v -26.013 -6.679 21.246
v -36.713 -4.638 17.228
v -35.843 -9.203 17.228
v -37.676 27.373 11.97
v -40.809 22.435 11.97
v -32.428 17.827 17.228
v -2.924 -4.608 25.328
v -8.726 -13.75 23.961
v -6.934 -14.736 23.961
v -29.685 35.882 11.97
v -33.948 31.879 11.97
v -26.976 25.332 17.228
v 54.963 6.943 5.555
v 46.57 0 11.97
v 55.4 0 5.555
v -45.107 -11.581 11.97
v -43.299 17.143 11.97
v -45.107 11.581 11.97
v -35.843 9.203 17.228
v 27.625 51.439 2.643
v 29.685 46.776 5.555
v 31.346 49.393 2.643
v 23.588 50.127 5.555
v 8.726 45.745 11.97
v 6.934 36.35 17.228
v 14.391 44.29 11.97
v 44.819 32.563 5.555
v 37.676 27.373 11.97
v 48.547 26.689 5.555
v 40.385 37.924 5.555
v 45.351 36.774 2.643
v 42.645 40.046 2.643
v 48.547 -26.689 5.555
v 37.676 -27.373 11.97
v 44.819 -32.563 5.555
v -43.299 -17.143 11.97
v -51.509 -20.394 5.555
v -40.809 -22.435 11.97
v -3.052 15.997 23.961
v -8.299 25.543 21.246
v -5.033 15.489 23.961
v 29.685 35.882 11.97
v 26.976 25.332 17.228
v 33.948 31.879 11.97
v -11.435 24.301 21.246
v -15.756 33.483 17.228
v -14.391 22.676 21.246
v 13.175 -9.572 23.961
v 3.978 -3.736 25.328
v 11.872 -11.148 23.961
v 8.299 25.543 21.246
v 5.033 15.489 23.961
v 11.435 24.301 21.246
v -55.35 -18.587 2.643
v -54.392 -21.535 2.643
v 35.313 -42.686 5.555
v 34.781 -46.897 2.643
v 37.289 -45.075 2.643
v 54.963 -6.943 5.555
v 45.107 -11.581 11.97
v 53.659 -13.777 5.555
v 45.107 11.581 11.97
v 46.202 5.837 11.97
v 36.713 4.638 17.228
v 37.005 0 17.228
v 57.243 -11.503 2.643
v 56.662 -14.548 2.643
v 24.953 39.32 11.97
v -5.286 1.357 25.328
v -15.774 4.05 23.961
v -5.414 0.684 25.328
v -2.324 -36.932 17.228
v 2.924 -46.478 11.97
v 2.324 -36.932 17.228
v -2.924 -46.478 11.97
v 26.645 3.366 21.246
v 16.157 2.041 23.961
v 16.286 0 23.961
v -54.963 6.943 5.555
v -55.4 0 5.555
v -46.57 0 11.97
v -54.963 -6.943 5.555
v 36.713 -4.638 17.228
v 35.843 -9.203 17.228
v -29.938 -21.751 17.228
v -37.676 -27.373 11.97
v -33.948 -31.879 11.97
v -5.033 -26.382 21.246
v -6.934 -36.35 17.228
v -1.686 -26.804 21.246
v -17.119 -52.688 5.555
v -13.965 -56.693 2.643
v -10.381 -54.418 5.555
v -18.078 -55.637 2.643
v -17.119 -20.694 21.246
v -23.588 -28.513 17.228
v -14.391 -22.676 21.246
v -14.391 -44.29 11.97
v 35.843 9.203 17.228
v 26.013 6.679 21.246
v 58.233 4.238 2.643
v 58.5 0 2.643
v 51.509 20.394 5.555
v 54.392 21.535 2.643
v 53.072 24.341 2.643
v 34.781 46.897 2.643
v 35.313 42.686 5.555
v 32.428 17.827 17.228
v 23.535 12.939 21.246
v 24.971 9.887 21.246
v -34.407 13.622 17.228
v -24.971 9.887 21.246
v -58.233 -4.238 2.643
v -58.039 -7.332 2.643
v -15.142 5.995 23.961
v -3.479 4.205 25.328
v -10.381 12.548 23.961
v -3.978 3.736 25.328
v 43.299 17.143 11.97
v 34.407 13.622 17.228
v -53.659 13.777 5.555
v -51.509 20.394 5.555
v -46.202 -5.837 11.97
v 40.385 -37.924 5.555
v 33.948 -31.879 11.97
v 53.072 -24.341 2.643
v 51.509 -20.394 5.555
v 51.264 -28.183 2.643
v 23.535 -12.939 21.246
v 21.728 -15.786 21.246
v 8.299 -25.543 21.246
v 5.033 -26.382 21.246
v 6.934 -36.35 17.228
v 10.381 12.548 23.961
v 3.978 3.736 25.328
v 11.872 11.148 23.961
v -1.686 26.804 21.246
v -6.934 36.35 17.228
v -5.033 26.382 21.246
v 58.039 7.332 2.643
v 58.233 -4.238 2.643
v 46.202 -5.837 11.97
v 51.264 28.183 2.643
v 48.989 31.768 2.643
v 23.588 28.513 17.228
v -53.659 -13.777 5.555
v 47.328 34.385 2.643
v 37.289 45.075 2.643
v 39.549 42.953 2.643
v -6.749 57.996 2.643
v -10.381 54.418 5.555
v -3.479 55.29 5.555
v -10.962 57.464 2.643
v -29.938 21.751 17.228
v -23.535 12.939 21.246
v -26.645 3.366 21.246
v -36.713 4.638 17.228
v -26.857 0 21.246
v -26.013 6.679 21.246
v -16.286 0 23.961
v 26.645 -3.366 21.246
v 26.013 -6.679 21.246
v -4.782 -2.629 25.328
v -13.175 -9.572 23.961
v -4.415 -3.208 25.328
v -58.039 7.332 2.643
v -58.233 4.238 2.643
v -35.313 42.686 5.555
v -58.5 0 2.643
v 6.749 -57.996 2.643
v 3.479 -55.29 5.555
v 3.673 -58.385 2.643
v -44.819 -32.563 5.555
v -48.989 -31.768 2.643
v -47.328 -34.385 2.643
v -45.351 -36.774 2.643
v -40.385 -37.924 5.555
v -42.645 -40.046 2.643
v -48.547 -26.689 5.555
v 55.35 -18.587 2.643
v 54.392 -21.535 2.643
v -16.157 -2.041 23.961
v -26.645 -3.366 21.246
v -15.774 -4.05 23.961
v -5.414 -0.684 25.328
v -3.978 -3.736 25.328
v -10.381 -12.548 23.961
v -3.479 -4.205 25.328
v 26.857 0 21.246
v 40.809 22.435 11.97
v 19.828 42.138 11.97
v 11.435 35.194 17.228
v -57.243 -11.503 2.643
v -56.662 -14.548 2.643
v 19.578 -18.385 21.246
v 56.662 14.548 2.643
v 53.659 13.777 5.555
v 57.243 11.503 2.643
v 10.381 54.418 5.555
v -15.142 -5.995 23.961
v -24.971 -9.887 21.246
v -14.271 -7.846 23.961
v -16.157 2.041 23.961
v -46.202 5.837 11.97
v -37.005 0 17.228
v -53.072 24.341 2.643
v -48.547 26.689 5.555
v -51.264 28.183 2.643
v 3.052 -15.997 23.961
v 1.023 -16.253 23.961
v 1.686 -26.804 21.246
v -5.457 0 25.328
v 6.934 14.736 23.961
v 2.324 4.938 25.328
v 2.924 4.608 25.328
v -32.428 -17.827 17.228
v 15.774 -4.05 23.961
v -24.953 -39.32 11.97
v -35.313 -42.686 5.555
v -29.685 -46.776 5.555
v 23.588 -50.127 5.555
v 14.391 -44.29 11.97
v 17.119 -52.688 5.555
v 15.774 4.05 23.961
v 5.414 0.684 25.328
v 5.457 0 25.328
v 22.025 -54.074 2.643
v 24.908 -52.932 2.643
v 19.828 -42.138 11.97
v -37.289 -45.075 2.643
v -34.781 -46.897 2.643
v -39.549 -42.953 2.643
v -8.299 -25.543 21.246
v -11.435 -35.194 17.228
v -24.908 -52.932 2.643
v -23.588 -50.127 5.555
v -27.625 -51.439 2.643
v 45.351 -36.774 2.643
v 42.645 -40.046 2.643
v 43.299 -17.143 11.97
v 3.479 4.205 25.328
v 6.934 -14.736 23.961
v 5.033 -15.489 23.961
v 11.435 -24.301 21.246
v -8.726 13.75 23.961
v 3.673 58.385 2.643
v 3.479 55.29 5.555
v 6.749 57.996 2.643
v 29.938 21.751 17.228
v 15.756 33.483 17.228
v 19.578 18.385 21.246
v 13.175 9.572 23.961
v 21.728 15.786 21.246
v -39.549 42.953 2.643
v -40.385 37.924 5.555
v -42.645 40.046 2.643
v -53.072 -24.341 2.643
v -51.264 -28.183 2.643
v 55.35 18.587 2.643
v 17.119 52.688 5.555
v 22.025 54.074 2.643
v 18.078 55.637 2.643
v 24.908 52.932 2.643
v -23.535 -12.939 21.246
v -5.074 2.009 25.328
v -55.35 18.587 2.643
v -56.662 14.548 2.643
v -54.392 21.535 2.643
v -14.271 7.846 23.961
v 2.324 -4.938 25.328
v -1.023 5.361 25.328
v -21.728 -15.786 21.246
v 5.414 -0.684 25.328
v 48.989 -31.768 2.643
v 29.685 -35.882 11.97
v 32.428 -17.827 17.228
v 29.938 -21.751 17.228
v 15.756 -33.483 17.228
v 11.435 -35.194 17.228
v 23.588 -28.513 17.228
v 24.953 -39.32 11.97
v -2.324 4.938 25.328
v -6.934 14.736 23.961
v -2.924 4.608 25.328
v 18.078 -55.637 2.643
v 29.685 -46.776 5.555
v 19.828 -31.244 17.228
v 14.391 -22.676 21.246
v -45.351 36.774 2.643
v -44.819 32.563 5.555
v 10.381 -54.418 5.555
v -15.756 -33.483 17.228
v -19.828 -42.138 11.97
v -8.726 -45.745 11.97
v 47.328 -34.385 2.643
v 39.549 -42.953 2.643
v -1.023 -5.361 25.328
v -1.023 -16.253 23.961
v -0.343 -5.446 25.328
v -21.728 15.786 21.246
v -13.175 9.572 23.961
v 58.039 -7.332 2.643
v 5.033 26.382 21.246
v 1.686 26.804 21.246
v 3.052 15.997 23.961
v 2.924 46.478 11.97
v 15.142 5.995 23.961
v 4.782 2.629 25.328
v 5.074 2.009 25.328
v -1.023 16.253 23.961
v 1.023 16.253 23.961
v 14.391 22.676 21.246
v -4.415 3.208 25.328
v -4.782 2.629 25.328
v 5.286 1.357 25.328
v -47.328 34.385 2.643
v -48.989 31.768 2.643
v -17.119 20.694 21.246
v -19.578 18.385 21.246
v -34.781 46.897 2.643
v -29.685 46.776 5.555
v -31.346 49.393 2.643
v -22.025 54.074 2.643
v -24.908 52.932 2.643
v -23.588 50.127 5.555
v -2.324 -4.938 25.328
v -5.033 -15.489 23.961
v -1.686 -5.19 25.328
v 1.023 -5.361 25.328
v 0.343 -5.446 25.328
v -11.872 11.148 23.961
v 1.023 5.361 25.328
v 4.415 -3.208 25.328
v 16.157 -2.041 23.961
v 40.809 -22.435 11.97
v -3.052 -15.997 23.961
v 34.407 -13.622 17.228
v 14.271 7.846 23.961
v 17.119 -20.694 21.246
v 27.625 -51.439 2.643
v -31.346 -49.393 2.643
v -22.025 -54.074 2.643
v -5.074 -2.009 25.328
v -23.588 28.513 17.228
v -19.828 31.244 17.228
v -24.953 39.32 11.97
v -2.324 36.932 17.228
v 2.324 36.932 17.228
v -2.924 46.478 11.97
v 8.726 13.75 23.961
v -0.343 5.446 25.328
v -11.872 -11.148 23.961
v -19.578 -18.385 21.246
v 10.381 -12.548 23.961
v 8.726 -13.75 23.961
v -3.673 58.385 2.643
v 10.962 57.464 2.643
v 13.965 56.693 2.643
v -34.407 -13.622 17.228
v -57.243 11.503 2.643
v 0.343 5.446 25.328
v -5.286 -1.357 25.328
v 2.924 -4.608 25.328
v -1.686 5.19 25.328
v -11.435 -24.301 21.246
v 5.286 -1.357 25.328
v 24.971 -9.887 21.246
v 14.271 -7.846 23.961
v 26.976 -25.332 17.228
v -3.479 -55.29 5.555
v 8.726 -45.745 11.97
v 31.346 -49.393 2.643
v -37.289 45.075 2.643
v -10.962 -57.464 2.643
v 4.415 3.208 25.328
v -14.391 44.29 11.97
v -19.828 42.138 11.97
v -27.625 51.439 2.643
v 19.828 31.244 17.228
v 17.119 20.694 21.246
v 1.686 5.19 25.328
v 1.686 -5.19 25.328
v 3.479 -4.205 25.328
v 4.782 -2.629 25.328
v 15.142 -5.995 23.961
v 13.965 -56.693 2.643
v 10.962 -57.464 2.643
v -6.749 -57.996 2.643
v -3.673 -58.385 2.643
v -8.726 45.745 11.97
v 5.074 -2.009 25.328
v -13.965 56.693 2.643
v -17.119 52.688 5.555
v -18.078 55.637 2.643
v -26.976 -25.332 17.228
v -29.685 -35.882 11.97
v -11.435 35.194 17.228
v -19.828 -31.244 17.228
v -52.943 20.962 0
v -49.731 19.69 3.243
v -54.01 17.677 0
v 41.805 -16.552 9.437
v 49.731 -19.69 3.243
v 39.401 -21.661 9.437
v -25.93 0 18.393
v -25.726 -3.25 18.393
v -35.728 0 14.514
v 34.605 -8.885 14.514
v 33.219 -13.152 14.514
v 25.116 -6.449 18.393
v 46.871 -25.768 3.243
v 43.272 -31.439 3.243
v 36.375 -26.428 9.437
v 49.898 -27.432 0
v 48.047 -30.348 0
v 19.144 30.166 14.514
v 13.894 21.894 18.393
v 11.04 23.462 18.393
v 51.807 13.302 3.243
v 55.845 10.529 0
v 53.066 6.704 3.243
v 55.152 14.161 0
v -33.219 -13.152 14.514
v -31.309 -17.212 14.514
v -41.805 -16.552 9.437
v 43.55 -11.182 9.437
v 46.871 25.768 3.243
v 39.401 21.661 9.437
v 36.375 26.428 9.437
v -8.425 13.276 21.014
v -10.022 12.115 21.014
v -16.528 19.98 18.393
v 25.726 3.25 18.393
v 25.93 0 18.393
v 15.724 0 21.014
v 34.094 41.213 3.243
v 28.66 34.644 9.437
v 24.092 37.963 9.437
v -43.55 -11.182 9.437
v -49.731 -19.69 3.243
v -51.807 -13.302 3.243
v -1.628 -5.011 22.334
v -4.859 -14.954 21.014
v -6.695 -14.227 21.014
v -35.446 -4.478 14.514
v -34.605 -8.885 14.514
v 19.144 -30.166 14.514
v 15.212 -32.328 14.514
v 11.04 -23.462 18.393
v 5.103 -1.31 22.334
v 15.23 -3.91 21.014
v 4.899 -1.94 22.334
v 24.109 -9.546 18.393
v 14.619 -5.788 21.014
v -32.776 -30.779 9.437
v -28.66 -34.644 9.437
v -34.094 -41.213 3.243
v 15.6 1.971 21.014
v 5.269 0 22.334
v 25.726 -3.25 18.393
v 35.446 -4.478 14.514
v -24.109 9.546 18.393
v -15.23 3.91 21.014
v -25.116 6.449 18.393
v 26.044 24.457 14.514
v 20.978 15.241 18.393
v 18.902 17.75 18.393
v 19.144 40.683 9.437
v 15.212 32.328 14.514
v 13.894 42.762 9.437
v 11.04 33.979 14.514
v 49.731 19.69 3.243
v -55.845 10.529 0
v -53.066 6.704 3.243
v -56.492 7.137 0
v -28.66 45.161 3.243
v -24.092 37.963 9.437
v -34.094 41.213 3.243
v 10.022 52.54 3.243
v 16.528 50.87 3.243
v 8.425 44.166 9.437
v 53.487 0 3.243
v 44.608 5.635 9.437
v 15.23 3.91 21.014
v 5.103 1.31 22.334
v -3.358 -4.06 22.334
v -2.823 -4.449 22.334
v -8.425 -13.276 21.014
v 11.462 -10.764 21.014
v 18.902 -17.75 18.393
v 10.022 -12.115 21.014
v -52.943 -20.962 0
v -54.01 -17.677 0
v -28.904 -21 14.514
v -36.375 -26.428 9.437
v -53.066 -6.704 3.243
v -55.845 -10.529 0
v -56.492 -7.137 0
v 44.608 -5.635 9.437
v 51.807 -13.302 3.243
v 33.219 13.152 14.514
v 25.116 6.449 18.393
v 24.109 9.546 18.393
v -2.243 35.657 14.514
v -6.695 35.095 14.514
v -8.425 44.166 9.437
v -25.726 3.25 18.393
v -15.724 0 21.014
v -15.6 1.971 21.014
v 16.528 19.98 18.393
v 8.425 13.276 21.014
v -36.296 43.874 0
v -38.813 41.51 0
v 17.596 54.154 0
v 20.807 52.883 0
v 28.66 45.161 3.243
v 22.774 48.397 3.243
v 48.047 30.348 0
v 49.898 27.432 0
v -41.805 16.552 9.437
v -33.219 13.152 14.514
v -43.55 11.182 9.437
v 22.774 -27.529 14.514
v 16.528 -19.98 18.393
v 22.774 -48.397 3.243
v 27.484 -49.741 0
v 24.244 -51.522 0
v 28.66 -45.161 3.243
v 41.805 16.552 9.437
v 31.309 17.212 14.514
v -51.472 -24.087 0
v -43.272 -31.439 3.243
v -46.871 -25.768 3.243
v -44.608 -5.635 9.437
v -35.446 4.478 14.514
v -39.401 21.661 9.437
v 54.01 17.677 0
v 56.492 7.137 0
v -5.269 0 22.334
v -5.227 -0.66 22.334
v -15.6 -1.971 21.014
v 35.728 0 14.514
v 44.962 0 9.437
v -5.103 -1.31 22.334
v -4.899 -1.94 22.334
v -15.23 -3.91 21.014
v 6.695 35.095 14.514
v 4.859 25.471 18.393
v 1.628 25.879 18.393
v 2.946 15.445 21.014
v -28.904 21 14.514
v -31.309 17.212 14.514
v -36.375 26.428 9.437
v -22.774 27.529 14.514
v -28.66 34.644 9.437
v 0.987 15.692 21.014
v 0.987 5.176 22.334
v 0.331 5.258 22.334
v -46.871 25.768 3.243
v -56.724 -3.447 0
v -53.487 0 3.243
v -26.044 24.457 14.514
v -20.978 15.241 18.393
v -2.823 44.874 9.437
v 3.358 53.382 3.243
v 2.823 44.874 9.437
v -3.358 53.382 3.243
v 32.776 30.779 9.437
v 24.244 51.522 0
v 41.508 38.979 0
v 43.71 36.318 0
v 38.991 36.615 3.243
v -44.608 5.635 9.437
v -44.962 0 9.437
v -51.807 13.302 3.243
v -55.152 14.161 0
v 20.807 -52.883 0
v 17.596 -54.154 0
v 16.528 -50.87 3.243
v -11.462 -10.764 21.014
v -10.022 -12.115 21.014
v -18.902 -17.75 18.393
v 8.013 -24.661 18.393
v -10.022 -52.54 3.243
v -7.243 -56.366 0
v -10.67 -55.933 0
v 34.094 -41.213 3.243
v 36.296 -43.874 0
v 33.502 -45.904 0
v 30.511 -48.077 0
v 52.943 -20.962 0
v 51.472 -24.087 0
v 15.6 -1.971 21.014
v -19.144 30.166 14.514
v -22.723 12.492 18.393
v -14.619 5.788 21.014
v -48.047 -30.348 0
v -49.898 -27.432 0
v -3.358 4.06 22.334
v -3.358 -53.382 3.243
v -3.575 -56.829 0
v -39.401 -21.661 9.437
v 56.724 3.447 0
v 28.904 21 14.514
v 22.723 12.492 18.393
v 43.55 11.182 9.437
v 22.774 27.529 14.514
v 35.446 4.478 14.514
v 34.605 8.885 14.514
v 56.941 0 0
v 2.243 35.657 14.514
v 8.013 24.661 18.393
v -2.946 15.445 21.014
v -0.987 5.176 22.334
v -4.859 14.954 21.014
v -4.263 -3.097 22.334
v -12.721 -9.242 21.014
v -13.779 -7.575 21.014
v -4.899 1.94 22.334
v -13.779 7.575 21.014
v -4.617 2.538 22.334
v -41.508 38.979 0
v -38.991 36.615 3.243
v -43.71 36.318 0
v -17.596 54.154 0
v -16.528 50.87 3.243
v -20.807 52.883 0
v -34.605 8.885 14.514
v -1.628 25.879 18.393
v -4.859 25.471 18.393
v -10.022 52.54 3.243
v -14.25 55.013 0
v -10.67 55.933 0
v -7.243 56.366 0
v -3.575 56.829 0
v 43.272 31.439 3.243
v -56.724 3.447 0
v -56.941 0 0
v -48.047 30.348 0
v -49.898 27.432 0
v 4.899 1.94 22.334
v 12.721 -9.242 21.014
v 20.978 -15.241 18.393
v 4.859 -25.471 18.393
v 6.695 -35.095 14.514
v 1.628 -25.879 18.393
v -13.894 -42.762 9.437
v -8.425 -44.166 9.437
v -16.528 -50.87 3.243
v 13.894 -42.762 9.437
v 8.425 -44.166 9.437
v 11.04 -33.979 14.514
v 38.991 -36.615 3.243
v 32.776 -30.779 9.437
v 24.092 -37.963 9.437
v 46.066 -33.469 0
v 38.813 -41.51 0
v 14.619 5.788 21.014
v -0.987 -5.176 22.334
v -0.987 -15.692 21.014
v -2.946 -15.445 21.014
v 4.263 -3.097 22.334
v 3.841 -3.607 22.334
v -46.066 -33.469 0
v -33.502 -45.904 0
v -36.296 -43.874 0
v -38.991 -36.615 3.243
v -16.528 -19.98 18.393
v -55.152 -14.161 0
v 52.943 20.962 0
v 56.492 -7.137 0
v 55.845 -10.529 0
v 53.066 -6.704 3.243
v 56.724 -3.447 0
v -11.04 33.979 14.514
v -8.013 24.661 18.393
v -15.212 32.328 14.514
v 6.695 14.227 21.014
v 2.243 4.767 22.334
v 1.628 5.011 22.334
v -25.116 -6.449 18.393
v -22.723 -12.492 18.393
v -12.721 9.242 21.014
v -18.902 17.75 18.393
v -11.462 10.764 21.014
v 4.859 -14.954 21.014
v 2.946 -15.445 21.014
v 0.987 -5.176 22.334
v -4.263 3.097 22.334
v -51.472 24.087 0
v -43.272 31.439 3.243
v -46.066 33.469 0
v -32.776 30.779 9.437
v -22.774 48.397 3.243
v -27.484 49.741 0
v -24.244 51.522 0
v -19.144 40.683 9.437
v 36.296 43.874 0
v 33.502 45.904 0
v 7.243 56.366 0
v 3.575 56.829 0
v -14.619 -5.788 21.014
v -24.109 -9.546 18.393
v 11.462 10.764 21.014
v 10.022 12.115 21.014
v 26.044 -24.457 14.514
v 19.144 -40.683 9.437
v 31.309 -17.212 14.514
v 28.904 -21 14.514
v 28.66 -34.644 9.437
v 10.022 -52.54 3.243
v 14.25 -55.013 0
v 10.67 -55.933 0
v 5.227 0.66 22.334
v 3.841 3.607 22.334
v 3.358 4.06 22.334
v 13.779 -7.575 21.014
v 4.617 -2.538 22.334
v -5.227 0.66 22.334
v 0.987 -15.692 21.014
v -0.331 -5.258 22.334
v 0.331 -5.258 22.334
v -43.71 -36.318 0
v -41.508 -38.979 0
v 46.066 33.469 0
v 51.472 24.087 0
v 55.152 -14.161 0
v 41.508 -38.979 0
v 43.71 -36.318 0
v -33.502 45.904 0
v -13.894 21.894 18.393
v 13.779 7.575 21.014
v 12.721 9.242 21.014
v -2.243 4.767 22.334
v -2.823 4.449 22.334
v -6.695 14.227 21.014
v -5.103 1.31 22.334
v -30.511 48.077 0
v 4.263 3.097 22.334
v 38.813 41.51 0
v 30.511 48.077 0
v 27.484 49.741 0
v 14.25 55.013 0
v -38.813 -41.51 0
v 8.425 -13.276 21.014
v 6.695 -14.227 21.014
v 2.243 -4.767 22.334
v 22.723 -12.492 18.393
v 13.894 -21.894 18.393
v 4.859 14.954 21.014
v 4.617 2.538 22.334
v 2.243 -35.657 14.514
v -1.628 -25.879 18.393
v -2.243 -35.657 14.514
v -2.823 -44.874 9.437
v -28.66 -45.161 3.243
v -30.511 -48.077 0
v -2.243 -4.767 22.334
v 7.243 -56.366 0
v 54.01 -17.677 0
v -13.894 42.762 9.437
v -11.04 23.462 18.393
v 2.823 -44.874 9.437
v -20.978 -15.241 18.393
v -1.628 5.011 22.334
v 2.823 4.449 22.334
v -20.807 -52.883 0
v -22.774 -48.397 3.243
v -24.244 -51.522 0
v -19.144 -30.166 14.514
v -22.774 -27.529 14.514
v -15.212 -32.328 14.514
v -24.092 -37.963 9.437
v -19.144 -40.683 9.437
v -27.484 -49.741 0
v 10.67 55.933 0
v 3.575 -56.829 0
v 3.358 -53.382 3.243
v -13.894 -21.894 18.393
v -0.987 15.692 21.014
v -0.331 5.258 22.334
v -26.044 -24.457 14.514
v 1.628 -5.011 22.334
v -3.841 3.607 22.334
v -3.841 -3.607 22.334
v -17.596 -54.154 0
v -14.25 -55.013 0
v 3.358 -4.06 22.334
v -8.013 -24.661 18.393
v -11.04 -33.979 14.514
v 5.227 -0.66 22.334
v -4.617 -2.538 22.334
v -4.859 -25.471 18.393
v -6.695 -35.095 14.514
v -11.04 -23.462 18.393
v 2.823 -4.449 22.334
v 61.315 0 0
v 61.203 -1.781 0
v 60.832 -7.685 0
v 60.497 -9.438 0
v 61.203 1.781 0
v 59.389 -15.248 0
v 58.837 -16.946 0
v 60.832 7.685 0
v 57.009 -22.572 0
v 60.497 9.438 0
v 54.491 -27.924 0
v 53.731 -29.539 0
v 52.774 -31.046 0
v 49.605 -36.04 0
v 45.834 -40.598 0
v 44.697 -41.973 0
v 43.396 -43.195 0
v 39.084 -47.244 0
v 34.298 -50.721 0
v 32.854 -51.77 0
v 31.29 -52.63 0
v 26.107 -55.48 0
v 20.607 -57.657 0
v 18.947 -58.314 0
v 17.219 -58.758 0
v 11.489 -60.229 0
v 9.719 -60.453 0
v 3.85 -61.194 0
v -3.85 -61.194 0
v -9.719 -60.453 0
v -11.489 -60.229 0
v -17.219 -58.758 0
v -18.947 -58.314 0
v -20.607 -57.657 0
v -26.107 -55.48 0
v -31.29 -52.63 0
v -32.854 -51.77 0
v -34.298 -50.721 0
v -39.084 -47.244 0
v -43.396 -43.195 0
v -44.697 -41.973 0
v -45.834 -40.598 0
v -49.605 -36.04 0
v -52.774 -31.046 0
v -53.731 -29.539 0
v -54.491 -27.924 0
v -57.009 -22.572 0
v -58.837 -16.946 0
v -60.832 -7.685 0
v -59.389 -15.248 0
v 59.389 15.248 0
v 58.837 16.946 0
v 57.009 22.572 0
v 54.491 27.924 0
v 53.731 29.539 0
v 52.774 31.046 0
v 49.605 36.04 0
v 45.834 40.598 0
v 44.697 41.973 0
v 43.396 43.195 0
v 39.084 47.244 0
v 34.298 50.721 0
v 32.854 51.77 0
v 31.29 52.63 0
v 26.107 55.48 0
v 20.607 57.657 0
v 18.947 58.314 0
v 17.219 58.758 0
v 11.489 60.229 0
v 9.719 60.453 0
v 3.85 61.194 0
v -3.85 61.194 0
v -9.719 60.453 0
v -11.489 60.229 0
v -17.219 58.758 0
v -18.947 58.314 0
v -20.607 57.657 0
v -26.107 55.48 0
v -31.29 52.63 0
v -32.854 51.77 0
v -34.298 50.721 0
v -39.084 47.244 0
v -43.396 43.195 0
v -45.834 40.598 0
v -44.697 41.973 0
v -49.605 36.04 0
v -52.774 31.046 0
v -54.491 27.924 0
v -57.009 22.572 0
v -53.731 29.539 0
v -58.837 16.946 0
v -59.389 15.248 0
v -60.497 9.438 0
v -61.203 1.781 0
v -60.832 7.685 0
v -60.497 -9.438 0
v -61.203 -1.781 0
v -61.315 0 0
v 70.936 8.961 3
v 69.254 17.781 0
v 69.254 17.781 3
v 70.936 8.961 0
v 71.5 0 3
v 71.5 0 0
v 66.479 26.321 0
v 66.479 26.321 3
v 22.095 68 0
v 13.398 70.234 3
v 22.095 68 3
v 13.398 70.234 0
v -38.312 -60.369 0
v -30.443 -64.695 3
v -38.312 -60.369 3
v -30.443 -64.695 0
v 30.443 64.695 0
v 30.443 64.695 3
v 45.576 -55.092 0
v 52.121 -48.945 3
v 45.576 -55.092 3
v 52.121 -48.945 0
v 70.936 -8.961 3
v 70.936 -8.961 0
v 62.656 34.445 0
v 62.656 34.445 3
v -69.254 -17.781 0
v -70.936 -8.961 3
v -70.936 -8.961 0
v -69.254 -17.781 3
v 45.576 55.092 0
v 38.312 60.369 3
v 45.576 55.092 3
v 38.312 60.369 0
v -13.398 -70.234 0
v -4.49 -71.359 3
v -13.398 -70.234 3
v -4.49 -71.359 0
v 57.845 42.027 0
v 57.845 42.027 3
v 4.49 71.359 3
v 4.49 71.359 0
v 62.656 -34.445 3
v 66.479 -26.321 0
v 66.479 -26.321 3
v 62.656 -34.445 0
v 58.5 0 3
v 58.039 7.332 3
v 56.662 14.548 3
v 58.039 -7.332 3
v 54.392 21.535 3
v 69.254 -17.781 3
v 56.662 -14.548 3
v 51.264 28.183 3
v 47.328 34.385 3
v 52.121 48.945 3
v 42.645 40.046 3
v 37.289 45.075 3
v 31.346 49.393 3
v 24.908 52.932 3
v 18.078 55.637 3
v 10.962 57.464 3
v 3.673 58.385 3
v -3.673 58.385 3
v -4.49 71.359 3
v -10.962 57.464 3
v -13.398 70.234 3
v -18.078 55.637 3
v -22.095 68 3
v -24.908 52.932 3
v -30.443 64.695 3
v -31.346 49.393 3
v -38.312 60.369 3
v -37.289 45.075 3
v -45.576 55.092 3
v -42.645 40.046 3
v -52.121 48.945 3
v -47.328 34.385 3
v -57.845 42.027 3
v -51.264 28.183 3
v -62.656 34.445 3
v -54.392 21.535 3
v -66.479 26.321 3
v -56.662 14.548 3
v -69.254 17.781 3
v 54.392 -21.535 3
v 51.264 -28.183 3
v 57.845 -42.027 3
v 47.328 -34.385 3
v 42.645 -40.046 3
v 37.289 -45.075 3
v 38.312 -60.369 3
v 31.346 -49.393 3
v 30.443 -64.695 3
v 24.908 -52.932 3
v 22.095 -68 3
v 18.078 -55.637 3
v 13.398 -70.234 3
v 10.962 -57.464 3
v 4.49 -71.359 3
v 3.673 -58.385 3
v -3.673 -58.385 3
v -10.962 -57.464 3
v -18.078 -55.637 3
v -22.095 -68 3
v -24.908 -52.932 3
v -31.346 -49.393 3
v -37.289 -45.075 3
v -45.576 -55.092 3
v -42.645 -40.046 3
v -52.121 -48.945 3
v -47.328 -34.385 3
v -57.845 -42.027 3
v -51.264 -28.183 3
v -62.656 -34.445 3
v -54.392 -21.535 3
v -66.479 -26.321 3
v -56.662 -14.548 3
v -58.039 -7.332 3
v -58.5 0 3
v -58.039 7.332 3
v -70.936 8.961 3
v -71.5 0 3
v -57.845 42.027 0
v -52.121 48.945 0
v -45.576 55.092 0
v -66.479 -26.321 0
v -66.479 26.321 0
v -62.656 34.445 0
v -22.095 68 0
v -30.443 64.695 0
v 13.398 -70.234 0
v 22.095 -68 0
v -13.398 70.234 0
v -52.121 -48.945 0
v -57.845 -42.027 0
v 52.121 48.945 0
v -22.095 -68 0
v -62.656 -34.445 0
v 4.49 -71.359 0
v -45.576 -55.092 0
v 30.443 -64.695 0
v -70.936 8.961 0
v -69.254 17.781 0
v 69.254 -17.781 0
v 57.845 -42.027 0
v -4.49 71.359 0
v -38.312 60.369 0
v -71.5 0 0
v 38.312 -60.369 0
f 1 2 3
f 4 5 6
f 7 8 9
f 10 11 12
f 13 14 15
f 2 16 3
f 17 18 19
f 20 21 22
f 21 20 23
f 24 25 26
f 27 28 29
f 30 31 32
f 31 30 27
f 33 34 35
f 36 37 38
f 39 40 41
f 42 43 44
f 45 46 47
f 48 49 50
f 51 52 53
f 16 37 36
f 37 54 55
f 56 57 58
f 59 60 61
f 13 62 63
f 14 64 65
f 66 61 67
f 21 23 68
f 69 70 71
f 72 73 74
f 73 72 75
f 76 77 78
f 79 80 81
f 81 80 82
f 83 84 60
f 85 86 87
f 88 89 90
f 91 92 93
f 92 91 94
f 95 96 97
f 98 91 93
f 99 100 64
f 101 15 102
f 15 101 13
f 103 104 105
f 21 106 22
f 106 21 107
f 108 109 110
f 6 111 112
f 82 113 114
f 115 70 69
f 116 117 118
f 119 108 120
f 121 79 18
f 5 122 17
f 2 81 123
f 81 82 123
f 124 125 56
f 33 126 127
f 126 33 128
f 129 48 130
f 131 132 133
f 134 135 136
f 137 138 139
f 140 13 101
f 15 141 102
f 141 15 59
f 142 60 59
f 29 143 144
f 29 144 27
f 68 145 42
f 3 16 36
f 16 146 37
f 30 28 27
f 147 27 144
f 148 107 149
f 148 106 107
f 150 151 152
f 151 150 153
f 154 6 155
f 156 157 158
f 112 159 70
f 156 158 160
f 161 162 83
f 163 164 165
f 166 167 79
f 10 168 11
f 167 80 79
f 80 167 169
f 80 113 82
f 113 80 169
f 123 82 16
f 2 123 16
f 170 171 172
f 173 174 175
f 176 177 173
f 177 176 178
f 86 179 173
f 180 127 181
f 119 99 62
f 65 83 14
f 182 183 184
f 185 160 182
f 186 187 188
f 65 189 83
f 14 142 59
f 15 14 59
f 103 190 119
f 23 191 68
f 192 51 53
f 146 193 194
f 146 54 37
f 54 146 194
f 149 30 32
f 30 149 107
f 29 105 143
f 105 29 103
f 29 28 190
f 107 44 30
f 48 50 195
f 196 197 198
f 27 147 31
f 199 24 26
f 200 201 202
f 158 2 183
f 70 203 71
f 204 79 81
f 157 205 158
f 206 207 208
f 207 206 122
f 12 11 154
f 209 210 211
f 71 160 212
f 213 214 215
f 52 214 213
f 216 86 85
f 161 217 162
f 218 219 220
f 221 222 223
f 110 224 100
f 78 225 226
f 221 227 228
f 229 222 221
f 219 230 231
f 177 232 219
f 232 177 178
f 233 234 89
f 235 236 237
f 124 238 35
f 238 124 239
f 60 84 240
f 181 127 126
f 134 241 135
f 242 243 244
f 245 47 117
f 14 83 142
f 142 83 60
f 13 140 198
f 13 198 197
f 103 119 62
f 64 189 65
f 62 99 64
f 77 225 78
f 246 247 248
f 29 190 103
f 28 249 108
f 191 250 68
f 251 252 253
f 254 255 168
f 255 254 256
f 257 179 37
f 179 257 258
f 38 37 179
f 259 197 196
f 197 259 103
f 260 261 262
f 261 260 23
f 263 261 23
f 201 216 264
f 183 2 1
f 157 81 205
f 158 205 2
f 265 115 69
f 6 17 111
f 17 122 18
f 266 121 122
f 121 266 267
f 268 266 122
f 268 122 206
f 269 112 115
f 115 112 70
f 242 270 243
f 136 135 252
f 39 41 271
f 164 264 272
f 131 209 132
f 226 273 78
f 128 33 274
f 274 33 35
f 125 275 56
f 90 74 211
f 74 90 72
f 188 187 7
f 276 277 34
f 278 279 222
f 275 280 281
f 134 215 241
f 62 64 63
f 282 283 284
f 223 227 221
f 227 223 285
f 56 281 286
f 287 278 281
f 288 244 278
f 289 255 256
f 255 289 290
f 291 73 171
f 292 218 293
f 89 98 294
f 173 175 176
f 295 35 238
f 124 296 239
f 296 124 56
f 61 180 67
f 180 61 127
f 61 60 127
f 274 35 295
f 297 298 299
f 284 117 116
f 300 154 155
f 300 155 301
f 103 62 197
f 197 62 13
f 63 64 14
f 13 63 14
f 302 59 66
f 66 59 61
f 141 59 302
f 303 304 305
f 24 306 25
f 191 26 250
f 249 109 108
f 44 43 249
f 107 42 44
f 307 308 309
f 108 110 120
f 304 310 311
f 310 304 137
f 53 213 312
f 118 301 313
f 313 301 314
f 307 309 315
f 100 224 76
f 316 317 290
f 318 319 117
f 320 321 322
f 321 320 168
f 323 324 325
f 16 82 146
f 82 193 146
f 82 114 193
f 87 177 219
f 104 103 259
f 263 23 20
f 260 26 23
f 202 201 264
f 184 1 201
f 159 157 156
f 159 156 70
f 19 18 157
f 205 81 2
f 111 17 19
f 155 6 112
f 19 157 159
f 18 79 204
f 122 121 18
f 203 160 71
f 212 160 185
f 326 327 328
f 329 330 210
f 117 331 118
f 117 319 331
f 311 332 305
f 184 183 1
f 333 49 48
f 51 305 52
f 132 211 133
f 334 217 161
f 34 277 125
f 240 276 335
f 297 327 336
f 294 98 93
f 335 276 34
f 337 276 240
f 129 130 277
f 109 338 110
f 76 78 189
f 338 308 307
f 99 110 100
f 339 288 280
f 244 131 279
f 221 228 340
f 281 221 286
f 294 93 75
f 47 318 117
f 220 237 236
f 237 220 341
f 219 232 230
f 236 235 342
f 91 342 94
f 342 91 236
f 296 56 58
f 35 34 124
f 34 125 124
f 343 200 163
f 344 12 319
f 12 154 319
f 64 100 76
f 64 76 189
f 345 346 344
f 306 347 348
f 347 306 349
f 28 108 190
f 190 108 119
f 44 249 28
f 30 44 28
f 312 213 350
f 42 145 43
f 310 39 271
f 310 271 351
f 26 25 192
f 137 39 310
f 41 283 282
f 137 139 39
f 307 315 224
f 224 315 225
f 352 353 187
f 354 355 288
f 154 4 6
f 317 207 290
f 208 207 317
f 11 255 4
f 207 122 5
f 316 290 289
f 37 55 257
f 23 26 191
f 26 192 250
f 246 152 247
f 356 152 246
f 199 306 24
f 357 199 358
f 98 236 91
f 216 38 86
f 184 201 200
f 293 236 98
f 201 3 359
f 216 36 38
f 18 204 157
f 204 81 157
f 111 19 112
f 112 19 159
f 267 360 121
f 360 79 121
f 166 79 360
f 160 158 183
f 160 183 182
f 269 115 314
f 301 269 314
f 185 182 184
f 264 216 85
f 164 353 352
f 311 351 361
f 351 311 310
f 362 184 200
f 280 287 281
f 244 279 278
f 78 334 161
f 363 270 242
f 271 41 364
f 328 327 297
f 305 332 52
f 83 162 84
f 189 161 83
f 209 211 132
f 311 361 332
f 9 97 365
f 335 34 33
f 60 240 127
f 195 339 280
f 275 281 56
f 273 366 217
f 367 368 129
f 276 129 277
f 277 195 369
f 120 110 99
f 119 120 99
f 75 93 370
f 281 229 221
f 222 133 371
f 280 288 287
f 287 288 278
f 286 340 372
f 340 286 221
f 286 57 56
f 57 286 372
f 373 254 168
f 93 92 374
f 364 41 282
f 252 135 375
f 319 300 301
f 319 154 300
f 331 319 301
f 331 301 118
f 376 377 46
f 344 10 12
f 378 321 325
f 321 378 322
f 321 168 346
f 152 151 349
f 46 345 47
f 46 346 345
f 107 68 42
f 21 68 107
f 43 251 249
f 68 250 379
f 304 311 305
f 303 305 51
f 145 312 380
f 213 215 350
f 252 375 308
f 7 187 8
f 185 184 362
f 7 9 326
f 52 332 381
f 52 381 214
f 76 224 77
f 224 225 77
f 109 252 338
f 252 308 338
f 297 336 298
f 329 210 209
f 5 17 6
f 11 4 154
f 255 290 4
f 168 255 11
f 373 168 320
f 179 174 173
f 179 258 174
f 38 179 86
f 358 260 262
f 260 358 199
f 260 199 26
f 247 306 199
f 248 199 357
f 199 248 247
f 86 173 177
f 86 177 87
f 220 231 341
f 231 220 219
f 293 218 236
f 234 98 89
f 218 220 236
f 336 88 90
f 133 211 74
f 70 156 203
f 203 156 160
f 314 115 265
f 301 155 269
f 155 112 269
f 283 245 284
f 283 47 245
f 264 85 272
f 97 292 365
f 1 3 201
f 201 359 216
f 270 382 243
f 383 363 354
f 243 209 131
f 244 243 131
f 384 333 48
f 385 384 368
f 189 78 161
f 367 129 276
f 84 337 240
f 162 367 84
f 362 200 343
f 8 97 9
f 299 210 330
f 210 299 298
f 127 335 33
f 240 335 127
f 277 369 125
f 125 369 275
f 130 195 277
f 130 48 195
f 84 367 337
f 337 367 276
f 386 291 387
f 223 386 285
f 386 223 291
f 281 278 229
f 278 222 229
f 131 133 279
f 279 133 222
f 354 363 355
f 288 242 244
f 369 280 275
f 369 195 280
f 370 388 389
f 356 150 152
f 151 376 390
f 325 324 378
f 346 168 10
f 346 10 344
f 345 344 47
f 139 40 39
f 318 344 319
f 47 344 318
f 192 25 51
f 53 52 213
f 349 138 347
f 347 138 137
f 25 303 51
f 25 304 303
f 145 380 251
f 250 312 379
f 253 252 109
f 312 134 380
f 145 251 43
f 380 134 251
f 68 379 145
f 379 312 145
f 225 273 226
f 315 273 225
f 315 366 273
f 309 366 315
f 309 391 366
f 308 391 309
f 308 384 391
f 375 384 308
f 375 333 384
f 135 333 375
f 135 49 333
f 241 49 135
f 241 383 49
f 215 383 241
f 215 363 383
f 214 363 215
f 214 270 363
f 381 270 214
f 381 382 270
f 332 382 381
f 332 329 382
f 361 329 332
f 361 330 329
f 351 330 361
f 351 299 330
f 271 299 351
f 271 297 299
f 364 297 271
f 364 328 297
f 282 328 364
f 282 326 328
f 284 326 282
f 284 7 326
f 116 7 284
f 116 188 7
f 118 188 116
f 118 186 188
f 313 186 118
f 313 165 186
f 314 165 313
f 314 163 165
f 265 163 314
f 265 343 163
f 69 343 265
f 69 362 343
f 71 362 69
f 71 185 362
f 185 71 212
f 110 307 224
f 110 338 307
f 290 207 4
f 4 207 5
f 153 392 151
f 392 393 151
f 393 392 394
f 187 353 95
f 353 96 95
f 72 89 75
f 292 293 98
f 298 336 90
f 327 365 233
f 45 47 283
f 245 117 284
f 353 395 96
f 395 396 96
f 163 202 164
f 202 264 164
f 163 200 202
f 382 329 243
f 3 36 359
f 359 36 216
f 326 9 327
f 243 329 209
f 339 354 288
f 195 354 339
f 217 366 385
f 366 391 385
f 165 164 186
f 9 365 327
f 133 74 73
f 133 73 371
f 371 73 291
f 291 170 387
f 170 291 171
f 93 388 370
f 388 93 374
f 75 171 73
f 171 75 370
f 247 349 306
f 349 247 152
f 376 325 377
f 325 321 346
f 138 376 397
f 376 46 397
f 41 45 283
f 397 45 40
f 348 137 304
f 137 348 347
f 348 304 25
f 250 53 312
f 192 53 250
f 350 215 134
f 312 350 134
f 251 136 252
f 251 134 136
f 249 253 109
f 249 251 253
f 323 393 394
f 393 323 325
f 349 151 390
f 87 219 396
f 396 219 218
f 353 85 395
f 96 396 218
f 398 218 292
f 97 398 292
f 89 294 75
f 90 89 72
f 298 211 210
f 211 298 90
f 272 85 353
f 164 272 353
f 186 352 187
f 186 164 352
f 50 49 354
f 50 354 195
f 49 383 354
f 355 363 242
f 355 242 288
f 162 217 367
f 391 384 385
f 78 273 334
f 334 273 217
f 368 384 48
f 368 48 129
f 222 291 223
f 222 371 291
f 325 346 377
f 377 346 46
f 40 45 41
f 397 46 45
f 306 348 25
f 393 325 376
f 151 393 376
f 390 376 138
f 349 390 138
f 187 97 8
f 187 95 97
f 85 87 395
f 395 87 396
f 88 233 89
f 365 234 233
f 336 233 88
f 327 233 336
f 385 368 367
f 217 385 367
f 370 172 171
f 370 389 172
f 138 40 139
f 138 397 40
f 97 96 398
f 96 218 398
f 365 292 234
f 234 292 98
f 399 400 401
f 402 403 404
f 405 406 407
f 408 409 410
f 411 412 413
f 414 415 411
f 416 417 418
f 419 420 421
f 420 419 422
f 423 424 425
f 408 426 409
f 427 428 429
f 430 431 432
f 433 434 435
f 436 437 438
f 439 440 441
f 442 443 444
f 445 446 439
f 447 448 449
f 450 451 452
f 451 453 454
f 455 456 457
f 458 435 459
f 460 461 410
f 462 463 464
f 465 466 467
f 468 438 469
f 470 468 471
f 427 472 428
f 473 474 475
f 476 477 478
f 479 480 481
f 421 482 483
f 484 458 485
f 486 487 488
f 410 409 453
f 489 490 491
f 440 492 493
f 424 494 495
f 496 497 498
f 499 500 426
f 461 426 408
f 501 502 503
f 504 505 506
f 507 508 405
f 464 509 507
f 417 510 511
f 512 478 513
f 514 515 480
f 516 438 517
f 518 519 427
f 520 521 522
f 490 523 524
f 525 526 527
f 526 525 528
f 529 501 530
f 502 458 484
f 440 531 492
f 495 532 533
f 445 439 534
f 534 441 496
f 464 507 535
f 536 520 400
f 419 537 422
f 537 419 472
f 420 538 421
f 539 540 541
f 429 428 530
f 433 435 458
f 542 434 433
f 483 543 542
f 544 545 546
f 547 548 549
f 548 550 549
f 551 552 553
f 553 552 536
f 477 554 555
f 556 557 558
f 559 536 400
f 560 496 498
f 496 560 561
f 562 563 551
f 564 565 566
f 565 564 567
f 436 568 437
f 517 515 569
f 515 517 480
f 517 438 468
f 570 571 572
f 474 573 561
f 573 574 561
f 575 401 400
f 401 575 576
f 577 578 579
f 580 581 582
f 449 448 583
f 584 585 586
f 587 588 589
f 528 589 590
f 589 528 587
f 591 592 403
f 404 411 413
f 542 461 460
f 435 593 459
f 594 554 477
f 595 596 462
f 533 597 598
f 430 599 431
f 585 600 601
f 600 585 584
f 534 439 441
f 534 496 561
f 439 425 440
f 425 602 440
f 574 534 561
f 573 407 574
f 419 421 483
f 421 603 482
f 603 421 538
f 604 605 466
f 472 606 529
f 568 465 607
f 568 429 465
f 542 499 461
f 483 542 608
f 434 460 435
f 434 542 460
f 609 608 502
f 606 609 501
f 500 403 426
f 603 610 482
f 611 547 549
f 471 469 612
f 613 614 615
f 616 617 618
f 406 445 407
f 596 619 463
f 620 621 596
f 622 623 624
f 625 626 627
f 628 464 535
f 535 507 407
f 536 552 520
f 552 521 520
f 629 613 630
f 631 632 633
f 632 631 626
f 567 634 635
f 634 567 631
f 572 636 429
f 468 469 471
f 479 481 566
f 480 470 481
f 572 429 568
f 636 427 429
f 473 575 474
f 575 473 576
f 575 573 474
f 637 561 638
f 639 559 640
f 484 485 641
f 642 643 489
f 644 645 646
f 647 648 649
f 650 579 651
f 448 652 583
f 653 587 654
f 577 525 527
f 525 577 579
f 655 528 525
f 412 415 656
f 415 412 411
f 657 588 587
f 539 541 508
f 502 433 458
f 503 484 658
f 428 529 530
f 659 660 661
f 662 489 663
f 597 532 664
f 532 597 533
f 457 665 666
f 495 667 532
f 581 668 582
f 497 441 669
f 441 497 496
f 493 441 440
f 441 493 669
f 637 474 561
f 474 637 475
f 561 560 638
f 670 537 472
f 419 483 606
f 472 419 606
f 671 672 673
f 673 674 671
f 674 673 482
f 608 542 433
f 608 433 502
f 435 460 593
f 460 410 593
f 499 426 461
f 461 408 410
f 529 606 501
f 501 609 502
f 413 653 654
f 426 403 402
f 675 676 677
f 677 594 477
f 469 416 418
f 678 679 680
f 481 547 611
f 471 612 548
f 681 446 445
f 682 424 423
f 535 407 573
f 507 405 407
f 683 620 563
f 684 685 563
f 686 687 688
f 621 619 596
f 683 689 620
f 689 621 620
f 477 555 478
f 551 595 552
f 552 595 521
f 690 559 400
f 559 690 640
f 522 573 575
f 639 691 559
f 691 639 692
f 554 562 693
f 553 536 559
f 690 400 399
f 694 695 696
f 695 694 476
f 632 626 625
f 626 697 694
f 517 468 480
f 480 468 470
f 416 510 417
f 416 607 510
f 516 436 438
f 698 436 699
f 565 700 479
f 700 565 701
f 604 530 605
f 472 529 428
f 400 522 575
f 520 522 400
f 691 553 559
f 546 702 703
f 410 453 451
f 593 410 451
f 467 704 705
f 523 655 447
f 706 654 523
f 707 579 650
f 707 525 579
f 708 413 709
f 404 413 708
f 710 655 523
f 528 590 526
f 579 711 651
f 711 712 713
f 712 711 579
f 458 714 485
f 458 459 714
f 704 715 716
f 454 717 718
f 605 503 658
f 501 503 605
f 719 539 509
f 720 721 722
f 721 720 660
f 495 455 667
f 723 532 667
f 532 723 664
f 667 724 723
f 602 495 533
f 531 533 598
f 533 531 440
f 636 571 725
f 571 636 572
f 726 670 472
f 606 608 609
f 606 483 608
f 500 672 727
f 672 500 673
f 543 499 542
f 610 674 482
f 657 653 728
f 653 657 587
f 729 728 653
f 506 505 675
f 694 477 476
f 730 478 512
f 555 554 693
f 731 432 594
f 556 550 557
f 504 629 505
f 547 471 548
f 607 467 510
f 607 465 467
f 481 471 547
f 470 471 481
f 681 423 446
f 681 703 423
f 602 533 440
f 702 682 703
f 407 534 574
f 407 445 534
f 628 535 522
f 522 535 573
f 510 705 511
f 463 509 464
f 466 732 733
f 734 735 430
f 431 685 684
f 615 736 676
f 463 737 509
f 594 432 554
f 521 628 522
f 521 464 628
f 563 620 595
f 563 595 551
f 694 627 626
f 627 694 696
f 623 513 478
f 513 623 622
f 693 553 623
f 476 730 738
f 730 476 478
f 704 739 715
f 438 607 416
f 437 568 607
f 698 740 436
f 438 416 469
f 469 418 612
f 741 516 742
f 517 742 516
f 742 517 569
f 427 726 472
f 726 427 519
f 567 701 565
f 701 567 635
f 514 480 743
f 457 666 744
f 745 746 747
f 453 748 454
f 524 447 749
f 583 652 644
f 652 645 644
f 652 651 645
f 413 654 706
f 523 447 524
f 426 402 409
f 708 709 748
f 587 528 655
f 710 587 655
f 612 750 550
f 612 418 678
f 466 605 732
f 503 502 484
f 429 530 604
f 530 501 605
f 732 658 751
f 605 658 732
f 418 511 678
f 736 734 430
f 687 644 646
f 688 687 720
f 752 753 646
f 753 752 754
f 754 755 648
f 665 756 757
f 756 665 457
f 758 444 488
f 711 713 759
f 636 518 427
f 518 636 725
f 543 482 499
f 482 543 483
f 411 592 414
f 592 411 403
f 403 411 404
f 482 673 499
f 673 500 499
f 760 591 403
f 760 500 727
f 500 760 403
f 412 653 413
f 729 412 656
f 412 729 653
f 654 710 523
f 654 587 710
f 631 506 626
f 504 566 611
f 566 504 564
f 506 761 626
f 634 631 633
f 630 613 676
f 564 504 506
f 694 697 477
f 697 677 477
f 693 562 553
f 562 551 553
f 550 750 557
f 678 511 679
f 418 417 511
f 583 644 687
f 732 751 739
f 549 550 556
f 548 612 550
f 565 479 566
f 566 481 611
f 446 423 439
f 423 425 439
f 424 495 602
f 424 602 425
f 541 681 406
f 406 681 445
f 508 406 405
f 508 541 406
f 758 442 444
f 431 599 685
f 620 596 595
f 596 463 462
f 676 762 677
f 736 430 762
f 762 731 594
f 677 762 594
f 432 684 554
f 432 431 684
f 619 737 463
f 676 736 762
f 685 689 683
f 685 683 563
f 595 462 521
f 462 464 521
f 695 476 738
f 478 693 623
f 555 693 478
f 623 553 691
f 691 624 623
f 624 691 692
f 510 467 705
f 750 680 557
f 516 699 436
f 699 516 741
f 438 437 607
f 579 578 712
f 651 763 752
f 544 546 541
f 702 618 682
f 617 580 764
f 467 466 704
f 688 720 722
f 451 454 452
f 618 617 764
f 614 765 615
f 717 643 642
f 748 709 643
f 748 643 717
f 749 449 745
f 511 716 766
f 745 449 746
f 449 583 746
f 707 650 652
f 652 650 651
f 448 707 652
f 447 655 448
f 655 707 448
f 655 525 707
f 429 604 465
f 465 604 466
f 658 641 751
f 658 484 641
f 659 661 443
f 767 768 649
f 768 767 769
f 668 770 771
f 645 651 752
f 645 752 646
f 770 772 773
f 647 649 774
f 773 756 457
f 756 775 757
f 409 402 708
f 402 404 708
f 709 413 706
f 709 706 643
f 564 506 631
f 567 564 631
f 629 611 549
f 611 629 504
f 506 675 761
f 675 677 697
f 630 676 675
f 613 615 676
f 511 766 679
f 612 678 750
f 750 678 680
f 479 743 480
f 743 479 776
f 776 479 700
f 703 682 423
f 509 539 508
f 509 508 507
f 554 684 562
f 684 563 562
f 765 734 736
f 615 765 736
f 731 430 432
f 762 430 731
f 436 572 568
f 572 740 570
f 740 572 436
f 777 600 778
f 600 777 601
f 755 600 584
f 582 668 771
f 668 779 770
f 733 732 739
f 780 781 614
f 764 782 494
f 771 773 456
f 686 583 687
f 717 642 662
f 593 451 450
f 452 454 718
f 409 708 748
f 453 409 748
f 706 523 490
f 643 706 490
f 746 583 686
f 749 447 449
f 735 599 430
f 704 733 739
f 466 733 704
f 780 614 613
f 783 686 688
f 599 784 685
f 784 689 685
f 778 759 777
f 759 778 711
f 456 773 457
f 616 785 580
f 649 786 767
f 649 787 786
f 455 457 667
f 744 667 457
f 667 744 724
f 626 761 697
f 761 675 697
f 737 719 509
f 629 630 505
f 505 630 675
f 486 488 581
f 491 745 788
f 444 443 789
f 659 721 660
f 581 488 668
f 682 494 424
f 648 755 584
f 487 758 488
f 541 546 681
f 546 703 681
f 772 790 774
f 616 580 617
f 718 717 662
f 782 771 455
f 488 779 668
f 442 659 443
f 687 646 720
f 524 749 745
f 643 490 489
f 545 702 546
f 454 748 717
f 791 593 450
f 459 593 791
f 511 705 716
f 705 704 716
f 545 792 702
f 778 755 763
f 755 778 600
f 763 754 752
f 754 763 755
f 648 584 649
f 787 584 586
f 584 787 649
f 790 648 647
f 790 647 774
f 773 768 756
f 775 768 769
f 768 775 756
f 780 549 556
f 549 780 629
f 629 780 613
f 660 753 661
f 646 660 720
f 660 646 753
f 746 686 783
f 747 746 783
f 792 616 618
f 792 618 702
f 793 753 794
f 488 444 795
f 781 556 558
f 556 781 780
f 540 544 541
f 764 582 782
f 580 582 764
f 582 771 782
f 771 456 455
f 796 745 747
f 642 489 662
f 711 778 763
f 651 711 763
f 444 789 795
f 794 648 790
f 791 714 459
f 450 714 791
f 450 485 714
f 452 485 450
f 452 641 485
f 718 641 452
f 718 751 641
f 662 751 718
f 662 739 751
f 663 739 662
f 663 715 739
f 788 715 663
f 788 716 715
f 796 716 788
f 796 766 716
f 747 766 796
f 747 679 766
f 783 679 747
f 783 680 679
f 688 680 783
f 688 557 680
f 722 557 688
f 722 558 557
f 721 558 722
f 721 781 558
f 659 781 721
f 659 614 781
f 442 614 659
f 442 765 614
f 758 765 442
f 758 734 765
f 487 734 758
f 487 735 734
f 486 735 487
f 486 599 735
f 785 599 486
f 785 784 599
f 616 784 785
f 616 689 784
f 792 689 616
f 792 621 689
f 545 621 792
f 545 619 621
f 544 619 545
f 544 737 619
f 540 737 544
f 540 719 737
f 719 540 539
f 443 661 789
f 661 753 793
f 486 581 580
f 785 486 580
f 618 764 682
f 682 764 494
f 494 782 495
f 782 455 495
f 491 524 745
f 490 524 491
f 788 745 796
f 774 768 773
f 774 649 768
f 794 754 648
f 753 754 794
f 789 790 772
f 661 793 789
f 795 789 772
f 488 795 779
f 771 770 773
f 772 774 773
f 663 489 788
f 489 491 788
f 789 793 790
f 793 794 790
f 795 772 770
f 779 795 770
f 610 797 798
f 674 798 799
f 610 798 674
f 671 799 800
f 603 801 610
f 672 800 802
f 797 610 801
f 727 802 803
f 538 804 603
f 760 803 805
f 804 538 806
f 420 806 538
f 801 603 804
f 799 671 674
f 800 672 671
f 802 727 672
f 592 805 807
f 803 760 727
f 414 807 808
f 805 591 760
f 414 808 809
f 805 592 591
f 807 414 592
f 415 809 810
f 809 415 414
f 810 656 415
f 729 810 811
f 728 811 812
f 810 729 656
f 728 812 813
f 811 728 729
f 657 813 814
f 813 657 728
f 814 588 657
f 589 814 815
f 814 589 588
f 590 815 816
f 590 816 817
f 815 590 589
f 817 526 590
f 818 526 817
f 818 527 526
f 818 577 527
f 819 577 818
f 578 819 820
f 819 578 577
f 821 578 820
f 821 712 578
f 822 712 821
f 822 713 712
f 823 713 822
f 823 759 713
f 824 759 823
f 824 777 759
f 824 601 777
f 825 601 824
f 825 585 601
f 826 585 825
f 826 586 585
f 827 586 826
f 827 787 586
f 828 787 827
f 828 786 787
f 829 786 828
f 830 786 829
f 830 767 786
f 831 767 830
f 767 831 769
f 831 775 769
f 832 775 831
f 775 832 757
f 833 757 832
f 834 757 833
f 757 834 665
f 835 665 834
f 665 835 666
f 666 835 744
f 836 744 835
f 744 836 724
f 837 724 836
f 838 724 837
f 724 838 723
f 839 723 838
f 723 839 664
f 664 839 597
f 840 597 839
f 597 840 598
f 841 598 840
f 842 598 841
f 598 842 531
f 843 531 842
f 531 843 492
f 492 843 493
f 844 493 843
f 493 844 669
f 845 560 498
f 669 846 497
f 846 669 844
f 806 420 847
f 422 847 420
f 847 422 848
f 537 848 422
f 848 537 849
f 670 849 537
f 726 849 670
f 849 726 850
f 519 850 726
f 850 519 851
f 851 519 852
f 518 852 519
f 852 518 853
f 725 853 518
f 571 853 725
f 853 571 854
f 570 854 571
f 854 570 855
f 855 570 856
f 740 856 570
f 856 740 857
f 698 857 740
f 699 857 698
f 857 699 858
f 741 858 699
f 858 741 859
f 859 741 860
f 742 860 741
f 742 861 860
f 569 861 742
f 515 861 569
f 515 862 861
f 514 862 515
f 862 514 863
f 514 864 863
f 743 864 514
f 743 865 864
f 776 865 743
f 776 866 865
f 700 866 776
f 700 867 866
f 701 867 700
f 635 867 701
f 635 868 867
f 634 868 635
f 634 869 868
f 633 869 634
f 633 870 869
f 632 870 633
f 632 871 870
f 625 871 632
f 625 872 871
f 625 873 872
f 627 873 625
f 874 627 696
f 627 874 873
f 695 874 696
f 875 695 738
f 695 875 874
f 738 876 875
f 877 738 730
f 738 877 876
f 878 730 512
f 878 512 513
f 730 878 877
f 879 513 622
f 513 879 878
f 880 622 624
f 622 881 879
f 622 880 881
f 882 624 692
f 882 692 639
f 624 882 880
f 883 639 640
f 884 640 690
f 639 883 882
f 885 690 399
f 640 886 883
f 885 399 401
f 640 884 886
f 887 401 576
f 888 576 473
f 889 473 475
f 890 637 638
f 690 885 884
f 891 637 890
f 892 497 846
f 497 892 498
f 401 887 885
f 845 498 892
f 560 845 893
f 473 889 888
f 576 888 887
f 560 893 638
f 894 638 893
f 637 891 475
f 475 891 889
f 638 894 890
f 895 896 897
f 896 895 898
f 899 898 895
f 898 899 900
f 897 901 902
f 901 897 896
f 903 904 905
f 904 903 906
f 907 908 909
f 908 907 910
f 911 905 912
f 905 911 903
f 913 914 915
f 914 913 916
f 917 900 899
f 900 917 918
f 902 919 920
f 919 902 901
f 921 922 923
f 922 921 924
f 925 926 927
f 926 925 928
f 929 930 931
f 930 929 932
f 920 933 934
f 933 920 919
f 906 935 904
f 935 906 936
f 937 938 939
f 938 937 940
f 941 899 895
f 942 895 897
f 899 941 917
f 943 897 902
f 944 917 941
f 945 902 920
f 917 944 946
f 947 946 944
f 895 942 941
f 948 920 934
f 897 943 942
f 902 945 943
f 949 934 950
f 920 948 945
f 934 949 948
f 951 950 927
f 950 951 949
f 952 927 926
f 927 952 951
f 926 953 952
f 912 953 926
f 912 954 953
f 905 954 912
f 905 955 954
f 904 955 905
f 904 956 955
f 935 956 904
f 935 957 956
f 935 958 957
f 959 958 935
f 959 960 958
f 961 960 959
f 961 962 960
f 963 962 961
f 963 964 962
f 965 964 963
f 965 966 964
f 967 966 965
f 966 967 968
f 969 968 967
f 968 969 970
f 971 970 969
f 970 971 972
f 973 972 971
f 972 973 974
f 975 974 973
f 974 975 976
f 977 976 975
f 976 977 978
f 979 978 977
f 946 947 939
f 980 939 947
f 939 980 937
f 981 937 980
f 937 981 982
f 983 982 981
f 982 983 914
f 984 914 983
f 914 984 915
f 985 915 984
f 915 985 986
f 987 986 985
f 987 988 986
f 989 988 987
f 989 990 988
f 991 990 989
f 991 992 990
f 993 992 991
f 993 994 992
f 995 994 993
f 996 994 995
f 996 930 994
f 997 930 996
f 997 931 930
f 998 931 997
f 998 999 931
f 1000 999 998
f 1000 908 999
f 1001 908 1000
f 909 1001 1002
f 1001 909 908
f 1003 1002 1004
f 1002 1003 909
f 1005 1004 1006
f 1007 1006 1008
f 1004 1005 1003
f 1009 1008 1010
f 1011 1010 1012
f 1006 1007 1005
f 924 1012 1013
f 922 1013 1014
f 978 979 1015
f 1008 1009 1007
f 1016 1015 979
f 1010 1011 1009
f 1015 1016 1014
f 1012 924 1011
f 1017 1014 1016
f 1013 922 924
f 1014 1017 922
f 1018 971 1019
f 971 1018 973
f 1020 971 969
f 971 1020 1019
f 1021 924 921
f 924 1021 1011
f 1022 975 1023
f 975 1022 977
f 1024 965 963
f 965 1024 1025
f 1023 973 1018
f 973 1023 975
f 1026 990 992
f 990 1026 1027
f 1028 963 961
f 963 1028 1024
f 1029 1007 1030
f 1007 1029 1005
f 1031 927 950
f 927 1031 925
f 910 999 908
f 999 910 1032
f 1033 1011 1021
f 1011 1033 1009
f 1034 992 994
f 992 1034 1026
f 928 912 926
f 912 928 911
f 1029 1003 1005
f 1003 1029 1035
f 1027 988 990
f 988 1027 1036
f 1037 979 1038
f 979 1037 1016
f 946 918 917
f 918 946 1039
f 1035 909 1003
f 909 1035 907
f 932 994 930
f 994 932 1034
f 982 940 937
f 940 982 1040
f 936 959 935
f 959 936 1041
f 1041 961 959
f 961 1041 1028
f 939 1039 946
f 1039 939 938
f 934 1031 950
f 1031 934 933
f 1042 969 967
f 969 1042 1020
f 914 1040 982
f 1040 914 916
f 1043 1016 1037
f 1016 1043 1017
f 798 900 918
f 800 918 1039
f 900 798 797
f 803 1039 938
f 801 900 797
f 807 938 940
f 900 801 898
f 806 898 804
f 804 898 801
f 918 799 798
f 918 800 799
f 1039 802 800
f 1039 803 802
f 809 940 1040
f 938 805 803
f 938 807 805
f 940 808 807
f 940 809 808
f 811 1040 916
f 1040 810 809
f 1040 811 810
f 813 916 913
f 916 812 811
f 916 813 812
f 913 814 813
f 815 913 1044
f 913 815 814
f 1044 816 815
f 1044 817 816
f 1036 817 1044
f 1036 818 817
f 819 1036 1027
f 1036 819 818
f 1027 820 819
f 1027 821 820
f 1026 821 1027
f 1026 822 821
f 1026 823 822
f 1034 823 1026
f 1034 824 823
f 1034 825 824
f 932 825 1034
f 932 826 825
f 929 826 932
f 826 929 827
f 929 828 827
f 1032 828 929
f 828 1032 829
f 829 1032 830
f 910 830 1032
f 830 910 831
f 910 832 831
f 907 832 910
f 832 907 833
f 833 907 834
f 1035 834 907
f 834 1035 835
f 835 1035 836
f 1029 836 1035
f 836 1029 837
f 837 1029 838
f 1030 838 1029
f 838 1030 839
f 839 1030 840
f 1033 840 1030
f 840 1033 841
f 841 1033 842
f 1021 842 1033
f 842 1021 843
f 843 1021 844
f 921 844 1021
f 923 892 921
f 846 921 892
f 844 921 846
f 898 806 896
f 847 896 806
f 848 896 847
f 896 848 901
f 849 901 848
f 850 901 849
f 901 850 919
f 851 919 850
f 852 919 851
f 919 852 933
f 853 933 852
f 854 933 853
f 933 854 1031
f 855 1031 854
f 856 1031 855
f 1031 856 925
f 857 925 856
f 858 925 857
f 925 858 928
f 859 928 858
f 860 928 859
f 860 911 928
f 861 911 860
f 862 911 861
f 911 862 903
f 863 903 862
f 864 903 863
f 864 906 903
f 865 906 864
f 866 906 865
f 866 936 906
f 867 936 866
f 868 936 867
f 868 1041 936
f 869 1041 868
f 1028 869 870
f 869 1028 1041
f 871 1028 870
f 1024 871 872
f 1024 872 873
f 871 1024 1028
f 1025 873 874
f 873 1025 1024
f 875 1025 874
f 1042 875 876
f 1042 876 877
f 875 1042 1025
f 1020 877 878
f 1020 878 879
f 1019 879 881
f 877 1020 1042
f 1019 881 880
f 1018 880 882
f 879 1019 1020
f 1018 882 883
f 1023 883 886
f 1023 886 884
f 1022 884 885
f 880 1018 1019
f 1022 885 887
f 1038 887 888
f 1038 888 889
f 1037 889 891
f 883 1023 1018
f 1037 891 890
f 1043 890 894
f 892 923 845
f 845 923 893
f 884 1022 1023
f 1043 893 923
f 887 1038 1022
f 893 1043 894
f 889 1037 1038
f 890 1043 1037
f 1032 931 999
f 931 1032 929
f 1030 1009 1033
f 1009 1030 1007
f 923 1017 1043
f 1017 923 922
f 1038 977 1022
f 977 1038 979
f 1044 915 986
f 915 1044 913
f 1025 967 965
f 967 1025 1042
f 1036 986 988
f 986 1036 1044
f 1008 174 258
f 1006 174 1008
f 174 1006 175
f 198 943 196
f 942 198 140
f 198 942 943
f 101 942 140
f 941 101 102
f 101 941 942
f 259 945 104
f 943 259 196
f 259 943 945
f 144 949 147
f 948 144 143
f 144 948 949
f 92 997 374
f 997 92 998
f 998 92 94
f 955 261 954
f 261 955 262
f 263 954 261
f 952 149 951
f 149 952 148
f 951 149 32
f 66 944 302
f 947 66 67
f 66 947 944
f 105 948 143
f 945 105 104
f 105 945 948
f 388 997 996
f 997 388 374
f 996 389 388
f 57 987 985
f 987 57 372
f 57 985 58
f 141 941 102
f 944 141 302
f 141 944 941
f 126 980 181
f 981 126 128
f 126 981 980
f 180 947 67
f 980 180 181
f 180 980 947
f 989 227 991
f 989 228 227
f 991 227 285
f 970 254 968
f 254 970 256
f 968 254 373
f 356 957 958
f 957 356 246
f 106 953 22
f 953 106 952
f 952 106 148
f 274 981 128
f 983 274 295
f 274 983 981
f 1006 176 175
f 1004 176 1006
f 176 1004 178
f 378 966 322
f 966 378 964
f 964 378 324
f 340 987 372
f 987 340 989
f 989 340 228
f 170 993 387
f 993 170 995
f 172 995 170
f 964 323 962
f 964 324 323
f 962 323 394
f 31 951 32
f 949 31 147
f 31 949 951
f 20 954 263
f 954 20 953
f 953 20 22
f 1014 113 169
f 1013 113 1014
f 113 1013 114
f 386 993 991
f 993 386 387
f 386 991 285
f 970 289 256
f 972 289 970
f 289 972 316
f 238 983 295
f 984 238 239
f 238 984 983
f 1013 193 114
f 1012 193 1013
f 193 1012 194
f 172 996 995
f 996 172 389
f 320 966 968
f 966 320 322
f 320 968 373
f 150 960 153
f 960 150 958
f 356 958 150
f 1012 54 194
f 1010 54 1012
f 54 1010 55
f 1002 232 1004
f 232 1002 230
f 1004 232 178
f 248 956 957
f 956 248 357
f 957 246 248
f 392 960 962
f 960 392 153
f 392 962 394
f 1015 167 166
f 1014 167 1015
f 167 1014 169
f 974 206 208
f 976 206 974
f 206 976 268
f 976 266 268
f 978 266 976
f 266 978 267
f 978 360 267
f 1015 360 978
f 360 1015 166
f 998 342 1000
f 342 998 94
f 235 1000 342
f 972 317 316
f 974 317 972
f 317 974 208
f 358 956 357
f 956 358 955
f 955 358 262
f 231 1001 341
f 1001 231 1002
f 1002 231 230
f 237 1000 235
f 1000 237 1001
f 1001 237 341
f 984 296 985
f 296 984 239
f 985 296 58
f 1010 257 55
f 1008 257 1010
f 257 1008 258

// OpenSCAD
debug=0;

// Das Ergebnis ist gleich liegend
liegend=1;


$fn=50;

durchmesserKappe=117;
hoeheKappe=25.5;
rand=13;
dicke=3;

// ==================================================
HalbKugel(radius=durchmesserKappe/2+dicke,hoehe=hoeheKappe,dicke=dicke);
Ring(radiusInnen=durchmesserKappe/2,dicke=3,rand=rand);

// ==================================================

module HalbKugel(radius=10,hoehe=10,dicke=3){
    radiusKugel=radius;
    radiusKugel= (hoehe*hoehe + radius*radius) / ( 2 * hoehe );
    translate([0,0,-radiusKugel+hoehe])
    difference()
//    union()
    { 
       HohlKugel(radius=radiusKugel,dicke=dicke);
       translate([-radiusKugel-.1,-radiusKugel-.1,-radiusKugel])
            cube([radiusKugel*2+.2,radiusKugel*2+.2,radiusKugel*2-hoehe]);
       }
}
 

module HohlKugel(radius=30,dicke=3){
        difference(){ 
            sphere(r=radius);
            sphere(r=radius-dicke);
        }
}


module Ring(radiusInnen=90,dicke=3,rand=10){
        difference(){ 
            cylinder(r=radiusInnen+rand,h=dicke,center=false);
            translate([0,0,-.1])
                cylinder(r=radiusInnen,h=dicke+.2,center=false);
        }
}
